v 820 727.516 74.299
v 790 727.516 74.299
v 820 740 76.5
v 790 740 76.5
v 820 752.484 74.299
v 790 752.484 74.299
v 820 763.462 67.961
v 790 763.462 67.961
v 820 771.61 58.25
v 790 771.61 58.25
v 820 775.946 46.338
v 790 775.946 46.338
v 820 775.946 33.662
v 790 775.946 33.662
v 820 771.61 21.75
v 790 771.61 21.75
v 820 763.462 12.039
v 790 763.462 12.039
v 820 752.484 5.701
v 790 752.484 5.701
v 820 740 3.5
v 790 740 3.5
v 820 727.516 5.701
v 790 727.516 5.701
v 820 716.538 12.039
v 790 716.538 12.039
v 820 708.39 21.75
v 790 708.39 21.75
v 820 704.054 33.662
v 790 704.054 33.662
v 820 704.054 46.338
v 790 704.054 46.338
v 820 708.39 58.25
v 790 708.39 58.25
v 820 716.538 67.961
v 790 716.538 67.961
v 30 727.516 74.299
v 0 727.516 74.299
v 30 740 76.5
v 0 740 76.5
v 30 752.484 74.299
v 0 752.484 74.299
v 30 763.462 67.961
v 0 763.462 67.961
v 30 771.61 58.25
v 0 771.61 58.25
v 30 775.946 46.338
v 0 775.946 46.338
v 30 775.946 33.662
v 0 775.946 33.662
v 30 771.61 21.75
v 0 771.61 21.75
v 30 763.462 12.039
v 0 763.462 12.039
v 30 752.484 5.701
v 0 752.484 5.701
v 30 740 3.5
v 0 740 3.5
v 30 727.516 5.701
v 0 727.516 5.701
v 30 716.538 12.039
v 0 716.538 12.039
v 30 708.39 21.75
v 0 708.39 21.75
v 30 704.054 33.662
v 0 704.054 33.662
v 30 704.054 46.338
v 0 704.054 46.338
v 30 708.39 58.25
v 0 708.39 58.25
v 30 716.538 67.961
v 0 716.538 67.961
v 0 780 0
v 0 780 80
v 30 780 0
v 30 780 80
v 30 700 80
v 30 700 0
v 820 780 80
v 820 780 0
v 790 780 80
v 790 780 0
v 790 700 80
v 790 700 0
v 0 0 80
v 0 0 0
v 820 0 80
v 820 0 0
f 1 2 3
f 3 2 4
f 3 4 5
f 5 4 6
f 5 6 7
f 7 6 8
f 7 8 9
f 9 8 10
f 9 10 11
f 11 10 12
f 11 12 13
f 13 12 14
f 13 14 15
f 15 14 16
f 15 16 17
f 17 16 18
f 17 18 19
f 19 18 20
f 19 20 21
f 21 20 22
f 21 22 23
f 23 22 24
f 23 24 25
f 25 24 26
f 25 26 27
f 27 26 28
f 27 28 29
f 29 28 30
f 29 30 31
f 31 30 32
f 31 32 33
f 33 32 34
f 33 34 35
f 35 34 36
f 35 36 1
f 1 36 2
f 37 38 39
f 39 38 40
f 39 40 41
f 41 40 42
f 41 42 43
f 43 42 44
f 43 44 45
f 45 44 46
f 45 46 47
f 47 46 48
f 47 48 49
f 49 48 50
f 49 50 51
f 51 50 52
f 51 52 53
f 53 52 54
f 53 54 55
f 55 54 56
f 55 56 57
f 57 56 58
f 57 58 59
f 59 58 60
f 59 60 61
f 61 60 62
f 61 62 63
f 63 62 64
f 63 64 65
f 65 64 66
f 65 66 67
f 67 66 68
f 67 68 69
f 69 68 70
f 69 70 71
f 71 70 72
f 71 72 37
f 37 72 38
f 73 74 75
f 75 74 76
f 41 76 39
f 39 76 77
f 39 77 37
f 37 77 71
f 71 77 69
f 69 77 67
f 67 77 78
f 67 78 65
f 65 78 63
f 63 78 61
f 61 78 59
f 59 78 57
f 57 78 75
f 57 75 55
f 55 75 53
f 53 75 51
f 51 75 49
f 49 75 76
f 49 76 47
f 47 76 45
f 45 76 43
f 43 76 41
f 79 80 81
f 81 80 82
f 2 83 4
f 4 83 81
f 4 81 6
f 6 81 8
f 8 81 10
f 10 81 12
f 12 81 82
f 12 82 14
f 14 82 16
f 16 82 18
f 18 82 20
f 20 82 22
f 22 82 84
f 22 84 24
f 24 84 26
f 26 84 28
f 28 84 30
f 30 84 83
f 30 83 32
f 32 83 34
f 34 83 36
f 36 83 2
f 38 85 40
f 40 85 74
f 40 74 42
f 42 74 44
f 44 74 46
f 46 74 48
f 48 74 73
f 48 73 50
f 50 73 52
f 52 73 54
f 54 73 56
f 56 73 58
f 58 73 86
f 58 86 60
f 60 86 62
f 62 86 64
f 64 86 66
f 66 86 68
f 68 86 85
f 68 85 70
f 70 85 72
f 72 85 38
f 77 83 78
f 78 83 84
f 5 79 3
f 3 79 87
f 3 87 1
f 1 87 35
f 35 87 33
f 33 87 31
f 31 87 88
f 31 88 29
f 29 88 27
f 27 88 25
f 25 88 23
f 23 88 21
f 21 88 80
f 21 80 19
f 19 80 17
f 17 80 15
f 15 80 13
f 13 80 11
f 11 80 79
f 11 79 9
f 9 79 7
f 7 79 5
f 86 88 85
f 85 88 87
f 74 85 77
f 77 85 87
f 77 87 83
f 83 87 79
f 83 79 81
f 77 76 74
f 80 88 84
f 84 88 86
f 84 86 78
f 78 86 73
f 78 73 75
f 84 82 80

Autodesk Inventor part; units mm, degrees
ref_plane "YZ Plane" through (0, 0, 0) normal (1, 0, 0) x (0, 1, 0)
ref_plane "XZ Plane" through (0, 0, 0) normal (0, 1, 0) x (-1, 0, 0)
ref_plane "XY Plane" through (0, 0, 0) normal (0, 0, 1) x (1, 0, 0)
sketch "Sketch1" plane through (0, 0, 0) normal (0, 0, 1) x (1, 0, 0)
  line L0 (0, 0) -> (820, 0)
  line L1 (820, 0) -> (820, 700)
  line L2 (820, 700) -> (0, 700)
  line L3 (0, 700) -> (0, 0)
  dimension "d0" = 820
  dimension "d1" = 700
extrude "Extrusion1" add sketch "Sketch1" along normal blind 80
sketch "Sketch2" plane through (820, 0, 0) normal (1, 0, 0) x (0, 0, -1)
  line L0 (0, 0) -> (0, 700) projected
  line L1 (0, 700) -> (-80, 700) projected
  line L2 (-80, 0) -> (-80, 700) projected
  line L3 (0, 0) -> (-80, 0) projected
  line L4 (0, 0) -> (0, 700) projected
  line L5 (0, 700) -> (-80, 700)
  line L6 (-80, 700) -> (-80, 780)
  line L7 (-80, 780) -> (0, 780)
  line L8 (0, 780) -> (0, 700)
  dimension "d4" = 80
  dimension "d5" = 80
extrude "Extrusion2" add sketch "Sketch2" against normal blind 30 contours L1 L6 L7 L8
sketch "Sketch3" plane through (0, 0, 0) normal (-1, 0, 0) x (0, 0, 1)
  line L0 (0, 700) -> (0, 0) projected
  line L1 (0, 0) -> (80, 0) projected
  line L2 (80, 700) -> (80, 0) projected
  line L3 (0, 700) -> (80, 700) projected
  line L4 (0, 780) -> (0, 700) projected
  line L5 (80, 700) -> (0, 700) projected
  line L6 (80, 700) -> (80, 780) projected
  line L7 (80, 780) -> (0, 780) projected
  line L8 (80, 0) -> (80, 780) projected
  line L9 (0, 700) -> (80, 700)
  line L10 (80, 700) -> (80, 780)
  line L11 (80, 780) -> (0, 780)
  line L12 (0, 780) -> (0, 700)
  point P0 (72, 700)
extrude "Extrusion3" add sketch "Sketch3" against normal blind 30 contours L4 L7 L6 L3
sketch "Sketch4" plane through (0, 0, 0) normal (-1, 0, 0) x (0, 0, 1)
  line L0 (0, 780) -> (80, 780) projected
  line L1 (80, 780) -> (80, 700) projected
  line L2 (0, 700) -> (80, 700) projected
  line L3 (0, 700) -> (0, 780) projected
  circle A0 centre (40, 740) radius 36.5
  point P0 (0, 0)
  dimension "d10" = 73
extrude "Extrusion4" cut sketch "Sketch4" against normal blind 940.75 contours A0
properties part number "mesa"
